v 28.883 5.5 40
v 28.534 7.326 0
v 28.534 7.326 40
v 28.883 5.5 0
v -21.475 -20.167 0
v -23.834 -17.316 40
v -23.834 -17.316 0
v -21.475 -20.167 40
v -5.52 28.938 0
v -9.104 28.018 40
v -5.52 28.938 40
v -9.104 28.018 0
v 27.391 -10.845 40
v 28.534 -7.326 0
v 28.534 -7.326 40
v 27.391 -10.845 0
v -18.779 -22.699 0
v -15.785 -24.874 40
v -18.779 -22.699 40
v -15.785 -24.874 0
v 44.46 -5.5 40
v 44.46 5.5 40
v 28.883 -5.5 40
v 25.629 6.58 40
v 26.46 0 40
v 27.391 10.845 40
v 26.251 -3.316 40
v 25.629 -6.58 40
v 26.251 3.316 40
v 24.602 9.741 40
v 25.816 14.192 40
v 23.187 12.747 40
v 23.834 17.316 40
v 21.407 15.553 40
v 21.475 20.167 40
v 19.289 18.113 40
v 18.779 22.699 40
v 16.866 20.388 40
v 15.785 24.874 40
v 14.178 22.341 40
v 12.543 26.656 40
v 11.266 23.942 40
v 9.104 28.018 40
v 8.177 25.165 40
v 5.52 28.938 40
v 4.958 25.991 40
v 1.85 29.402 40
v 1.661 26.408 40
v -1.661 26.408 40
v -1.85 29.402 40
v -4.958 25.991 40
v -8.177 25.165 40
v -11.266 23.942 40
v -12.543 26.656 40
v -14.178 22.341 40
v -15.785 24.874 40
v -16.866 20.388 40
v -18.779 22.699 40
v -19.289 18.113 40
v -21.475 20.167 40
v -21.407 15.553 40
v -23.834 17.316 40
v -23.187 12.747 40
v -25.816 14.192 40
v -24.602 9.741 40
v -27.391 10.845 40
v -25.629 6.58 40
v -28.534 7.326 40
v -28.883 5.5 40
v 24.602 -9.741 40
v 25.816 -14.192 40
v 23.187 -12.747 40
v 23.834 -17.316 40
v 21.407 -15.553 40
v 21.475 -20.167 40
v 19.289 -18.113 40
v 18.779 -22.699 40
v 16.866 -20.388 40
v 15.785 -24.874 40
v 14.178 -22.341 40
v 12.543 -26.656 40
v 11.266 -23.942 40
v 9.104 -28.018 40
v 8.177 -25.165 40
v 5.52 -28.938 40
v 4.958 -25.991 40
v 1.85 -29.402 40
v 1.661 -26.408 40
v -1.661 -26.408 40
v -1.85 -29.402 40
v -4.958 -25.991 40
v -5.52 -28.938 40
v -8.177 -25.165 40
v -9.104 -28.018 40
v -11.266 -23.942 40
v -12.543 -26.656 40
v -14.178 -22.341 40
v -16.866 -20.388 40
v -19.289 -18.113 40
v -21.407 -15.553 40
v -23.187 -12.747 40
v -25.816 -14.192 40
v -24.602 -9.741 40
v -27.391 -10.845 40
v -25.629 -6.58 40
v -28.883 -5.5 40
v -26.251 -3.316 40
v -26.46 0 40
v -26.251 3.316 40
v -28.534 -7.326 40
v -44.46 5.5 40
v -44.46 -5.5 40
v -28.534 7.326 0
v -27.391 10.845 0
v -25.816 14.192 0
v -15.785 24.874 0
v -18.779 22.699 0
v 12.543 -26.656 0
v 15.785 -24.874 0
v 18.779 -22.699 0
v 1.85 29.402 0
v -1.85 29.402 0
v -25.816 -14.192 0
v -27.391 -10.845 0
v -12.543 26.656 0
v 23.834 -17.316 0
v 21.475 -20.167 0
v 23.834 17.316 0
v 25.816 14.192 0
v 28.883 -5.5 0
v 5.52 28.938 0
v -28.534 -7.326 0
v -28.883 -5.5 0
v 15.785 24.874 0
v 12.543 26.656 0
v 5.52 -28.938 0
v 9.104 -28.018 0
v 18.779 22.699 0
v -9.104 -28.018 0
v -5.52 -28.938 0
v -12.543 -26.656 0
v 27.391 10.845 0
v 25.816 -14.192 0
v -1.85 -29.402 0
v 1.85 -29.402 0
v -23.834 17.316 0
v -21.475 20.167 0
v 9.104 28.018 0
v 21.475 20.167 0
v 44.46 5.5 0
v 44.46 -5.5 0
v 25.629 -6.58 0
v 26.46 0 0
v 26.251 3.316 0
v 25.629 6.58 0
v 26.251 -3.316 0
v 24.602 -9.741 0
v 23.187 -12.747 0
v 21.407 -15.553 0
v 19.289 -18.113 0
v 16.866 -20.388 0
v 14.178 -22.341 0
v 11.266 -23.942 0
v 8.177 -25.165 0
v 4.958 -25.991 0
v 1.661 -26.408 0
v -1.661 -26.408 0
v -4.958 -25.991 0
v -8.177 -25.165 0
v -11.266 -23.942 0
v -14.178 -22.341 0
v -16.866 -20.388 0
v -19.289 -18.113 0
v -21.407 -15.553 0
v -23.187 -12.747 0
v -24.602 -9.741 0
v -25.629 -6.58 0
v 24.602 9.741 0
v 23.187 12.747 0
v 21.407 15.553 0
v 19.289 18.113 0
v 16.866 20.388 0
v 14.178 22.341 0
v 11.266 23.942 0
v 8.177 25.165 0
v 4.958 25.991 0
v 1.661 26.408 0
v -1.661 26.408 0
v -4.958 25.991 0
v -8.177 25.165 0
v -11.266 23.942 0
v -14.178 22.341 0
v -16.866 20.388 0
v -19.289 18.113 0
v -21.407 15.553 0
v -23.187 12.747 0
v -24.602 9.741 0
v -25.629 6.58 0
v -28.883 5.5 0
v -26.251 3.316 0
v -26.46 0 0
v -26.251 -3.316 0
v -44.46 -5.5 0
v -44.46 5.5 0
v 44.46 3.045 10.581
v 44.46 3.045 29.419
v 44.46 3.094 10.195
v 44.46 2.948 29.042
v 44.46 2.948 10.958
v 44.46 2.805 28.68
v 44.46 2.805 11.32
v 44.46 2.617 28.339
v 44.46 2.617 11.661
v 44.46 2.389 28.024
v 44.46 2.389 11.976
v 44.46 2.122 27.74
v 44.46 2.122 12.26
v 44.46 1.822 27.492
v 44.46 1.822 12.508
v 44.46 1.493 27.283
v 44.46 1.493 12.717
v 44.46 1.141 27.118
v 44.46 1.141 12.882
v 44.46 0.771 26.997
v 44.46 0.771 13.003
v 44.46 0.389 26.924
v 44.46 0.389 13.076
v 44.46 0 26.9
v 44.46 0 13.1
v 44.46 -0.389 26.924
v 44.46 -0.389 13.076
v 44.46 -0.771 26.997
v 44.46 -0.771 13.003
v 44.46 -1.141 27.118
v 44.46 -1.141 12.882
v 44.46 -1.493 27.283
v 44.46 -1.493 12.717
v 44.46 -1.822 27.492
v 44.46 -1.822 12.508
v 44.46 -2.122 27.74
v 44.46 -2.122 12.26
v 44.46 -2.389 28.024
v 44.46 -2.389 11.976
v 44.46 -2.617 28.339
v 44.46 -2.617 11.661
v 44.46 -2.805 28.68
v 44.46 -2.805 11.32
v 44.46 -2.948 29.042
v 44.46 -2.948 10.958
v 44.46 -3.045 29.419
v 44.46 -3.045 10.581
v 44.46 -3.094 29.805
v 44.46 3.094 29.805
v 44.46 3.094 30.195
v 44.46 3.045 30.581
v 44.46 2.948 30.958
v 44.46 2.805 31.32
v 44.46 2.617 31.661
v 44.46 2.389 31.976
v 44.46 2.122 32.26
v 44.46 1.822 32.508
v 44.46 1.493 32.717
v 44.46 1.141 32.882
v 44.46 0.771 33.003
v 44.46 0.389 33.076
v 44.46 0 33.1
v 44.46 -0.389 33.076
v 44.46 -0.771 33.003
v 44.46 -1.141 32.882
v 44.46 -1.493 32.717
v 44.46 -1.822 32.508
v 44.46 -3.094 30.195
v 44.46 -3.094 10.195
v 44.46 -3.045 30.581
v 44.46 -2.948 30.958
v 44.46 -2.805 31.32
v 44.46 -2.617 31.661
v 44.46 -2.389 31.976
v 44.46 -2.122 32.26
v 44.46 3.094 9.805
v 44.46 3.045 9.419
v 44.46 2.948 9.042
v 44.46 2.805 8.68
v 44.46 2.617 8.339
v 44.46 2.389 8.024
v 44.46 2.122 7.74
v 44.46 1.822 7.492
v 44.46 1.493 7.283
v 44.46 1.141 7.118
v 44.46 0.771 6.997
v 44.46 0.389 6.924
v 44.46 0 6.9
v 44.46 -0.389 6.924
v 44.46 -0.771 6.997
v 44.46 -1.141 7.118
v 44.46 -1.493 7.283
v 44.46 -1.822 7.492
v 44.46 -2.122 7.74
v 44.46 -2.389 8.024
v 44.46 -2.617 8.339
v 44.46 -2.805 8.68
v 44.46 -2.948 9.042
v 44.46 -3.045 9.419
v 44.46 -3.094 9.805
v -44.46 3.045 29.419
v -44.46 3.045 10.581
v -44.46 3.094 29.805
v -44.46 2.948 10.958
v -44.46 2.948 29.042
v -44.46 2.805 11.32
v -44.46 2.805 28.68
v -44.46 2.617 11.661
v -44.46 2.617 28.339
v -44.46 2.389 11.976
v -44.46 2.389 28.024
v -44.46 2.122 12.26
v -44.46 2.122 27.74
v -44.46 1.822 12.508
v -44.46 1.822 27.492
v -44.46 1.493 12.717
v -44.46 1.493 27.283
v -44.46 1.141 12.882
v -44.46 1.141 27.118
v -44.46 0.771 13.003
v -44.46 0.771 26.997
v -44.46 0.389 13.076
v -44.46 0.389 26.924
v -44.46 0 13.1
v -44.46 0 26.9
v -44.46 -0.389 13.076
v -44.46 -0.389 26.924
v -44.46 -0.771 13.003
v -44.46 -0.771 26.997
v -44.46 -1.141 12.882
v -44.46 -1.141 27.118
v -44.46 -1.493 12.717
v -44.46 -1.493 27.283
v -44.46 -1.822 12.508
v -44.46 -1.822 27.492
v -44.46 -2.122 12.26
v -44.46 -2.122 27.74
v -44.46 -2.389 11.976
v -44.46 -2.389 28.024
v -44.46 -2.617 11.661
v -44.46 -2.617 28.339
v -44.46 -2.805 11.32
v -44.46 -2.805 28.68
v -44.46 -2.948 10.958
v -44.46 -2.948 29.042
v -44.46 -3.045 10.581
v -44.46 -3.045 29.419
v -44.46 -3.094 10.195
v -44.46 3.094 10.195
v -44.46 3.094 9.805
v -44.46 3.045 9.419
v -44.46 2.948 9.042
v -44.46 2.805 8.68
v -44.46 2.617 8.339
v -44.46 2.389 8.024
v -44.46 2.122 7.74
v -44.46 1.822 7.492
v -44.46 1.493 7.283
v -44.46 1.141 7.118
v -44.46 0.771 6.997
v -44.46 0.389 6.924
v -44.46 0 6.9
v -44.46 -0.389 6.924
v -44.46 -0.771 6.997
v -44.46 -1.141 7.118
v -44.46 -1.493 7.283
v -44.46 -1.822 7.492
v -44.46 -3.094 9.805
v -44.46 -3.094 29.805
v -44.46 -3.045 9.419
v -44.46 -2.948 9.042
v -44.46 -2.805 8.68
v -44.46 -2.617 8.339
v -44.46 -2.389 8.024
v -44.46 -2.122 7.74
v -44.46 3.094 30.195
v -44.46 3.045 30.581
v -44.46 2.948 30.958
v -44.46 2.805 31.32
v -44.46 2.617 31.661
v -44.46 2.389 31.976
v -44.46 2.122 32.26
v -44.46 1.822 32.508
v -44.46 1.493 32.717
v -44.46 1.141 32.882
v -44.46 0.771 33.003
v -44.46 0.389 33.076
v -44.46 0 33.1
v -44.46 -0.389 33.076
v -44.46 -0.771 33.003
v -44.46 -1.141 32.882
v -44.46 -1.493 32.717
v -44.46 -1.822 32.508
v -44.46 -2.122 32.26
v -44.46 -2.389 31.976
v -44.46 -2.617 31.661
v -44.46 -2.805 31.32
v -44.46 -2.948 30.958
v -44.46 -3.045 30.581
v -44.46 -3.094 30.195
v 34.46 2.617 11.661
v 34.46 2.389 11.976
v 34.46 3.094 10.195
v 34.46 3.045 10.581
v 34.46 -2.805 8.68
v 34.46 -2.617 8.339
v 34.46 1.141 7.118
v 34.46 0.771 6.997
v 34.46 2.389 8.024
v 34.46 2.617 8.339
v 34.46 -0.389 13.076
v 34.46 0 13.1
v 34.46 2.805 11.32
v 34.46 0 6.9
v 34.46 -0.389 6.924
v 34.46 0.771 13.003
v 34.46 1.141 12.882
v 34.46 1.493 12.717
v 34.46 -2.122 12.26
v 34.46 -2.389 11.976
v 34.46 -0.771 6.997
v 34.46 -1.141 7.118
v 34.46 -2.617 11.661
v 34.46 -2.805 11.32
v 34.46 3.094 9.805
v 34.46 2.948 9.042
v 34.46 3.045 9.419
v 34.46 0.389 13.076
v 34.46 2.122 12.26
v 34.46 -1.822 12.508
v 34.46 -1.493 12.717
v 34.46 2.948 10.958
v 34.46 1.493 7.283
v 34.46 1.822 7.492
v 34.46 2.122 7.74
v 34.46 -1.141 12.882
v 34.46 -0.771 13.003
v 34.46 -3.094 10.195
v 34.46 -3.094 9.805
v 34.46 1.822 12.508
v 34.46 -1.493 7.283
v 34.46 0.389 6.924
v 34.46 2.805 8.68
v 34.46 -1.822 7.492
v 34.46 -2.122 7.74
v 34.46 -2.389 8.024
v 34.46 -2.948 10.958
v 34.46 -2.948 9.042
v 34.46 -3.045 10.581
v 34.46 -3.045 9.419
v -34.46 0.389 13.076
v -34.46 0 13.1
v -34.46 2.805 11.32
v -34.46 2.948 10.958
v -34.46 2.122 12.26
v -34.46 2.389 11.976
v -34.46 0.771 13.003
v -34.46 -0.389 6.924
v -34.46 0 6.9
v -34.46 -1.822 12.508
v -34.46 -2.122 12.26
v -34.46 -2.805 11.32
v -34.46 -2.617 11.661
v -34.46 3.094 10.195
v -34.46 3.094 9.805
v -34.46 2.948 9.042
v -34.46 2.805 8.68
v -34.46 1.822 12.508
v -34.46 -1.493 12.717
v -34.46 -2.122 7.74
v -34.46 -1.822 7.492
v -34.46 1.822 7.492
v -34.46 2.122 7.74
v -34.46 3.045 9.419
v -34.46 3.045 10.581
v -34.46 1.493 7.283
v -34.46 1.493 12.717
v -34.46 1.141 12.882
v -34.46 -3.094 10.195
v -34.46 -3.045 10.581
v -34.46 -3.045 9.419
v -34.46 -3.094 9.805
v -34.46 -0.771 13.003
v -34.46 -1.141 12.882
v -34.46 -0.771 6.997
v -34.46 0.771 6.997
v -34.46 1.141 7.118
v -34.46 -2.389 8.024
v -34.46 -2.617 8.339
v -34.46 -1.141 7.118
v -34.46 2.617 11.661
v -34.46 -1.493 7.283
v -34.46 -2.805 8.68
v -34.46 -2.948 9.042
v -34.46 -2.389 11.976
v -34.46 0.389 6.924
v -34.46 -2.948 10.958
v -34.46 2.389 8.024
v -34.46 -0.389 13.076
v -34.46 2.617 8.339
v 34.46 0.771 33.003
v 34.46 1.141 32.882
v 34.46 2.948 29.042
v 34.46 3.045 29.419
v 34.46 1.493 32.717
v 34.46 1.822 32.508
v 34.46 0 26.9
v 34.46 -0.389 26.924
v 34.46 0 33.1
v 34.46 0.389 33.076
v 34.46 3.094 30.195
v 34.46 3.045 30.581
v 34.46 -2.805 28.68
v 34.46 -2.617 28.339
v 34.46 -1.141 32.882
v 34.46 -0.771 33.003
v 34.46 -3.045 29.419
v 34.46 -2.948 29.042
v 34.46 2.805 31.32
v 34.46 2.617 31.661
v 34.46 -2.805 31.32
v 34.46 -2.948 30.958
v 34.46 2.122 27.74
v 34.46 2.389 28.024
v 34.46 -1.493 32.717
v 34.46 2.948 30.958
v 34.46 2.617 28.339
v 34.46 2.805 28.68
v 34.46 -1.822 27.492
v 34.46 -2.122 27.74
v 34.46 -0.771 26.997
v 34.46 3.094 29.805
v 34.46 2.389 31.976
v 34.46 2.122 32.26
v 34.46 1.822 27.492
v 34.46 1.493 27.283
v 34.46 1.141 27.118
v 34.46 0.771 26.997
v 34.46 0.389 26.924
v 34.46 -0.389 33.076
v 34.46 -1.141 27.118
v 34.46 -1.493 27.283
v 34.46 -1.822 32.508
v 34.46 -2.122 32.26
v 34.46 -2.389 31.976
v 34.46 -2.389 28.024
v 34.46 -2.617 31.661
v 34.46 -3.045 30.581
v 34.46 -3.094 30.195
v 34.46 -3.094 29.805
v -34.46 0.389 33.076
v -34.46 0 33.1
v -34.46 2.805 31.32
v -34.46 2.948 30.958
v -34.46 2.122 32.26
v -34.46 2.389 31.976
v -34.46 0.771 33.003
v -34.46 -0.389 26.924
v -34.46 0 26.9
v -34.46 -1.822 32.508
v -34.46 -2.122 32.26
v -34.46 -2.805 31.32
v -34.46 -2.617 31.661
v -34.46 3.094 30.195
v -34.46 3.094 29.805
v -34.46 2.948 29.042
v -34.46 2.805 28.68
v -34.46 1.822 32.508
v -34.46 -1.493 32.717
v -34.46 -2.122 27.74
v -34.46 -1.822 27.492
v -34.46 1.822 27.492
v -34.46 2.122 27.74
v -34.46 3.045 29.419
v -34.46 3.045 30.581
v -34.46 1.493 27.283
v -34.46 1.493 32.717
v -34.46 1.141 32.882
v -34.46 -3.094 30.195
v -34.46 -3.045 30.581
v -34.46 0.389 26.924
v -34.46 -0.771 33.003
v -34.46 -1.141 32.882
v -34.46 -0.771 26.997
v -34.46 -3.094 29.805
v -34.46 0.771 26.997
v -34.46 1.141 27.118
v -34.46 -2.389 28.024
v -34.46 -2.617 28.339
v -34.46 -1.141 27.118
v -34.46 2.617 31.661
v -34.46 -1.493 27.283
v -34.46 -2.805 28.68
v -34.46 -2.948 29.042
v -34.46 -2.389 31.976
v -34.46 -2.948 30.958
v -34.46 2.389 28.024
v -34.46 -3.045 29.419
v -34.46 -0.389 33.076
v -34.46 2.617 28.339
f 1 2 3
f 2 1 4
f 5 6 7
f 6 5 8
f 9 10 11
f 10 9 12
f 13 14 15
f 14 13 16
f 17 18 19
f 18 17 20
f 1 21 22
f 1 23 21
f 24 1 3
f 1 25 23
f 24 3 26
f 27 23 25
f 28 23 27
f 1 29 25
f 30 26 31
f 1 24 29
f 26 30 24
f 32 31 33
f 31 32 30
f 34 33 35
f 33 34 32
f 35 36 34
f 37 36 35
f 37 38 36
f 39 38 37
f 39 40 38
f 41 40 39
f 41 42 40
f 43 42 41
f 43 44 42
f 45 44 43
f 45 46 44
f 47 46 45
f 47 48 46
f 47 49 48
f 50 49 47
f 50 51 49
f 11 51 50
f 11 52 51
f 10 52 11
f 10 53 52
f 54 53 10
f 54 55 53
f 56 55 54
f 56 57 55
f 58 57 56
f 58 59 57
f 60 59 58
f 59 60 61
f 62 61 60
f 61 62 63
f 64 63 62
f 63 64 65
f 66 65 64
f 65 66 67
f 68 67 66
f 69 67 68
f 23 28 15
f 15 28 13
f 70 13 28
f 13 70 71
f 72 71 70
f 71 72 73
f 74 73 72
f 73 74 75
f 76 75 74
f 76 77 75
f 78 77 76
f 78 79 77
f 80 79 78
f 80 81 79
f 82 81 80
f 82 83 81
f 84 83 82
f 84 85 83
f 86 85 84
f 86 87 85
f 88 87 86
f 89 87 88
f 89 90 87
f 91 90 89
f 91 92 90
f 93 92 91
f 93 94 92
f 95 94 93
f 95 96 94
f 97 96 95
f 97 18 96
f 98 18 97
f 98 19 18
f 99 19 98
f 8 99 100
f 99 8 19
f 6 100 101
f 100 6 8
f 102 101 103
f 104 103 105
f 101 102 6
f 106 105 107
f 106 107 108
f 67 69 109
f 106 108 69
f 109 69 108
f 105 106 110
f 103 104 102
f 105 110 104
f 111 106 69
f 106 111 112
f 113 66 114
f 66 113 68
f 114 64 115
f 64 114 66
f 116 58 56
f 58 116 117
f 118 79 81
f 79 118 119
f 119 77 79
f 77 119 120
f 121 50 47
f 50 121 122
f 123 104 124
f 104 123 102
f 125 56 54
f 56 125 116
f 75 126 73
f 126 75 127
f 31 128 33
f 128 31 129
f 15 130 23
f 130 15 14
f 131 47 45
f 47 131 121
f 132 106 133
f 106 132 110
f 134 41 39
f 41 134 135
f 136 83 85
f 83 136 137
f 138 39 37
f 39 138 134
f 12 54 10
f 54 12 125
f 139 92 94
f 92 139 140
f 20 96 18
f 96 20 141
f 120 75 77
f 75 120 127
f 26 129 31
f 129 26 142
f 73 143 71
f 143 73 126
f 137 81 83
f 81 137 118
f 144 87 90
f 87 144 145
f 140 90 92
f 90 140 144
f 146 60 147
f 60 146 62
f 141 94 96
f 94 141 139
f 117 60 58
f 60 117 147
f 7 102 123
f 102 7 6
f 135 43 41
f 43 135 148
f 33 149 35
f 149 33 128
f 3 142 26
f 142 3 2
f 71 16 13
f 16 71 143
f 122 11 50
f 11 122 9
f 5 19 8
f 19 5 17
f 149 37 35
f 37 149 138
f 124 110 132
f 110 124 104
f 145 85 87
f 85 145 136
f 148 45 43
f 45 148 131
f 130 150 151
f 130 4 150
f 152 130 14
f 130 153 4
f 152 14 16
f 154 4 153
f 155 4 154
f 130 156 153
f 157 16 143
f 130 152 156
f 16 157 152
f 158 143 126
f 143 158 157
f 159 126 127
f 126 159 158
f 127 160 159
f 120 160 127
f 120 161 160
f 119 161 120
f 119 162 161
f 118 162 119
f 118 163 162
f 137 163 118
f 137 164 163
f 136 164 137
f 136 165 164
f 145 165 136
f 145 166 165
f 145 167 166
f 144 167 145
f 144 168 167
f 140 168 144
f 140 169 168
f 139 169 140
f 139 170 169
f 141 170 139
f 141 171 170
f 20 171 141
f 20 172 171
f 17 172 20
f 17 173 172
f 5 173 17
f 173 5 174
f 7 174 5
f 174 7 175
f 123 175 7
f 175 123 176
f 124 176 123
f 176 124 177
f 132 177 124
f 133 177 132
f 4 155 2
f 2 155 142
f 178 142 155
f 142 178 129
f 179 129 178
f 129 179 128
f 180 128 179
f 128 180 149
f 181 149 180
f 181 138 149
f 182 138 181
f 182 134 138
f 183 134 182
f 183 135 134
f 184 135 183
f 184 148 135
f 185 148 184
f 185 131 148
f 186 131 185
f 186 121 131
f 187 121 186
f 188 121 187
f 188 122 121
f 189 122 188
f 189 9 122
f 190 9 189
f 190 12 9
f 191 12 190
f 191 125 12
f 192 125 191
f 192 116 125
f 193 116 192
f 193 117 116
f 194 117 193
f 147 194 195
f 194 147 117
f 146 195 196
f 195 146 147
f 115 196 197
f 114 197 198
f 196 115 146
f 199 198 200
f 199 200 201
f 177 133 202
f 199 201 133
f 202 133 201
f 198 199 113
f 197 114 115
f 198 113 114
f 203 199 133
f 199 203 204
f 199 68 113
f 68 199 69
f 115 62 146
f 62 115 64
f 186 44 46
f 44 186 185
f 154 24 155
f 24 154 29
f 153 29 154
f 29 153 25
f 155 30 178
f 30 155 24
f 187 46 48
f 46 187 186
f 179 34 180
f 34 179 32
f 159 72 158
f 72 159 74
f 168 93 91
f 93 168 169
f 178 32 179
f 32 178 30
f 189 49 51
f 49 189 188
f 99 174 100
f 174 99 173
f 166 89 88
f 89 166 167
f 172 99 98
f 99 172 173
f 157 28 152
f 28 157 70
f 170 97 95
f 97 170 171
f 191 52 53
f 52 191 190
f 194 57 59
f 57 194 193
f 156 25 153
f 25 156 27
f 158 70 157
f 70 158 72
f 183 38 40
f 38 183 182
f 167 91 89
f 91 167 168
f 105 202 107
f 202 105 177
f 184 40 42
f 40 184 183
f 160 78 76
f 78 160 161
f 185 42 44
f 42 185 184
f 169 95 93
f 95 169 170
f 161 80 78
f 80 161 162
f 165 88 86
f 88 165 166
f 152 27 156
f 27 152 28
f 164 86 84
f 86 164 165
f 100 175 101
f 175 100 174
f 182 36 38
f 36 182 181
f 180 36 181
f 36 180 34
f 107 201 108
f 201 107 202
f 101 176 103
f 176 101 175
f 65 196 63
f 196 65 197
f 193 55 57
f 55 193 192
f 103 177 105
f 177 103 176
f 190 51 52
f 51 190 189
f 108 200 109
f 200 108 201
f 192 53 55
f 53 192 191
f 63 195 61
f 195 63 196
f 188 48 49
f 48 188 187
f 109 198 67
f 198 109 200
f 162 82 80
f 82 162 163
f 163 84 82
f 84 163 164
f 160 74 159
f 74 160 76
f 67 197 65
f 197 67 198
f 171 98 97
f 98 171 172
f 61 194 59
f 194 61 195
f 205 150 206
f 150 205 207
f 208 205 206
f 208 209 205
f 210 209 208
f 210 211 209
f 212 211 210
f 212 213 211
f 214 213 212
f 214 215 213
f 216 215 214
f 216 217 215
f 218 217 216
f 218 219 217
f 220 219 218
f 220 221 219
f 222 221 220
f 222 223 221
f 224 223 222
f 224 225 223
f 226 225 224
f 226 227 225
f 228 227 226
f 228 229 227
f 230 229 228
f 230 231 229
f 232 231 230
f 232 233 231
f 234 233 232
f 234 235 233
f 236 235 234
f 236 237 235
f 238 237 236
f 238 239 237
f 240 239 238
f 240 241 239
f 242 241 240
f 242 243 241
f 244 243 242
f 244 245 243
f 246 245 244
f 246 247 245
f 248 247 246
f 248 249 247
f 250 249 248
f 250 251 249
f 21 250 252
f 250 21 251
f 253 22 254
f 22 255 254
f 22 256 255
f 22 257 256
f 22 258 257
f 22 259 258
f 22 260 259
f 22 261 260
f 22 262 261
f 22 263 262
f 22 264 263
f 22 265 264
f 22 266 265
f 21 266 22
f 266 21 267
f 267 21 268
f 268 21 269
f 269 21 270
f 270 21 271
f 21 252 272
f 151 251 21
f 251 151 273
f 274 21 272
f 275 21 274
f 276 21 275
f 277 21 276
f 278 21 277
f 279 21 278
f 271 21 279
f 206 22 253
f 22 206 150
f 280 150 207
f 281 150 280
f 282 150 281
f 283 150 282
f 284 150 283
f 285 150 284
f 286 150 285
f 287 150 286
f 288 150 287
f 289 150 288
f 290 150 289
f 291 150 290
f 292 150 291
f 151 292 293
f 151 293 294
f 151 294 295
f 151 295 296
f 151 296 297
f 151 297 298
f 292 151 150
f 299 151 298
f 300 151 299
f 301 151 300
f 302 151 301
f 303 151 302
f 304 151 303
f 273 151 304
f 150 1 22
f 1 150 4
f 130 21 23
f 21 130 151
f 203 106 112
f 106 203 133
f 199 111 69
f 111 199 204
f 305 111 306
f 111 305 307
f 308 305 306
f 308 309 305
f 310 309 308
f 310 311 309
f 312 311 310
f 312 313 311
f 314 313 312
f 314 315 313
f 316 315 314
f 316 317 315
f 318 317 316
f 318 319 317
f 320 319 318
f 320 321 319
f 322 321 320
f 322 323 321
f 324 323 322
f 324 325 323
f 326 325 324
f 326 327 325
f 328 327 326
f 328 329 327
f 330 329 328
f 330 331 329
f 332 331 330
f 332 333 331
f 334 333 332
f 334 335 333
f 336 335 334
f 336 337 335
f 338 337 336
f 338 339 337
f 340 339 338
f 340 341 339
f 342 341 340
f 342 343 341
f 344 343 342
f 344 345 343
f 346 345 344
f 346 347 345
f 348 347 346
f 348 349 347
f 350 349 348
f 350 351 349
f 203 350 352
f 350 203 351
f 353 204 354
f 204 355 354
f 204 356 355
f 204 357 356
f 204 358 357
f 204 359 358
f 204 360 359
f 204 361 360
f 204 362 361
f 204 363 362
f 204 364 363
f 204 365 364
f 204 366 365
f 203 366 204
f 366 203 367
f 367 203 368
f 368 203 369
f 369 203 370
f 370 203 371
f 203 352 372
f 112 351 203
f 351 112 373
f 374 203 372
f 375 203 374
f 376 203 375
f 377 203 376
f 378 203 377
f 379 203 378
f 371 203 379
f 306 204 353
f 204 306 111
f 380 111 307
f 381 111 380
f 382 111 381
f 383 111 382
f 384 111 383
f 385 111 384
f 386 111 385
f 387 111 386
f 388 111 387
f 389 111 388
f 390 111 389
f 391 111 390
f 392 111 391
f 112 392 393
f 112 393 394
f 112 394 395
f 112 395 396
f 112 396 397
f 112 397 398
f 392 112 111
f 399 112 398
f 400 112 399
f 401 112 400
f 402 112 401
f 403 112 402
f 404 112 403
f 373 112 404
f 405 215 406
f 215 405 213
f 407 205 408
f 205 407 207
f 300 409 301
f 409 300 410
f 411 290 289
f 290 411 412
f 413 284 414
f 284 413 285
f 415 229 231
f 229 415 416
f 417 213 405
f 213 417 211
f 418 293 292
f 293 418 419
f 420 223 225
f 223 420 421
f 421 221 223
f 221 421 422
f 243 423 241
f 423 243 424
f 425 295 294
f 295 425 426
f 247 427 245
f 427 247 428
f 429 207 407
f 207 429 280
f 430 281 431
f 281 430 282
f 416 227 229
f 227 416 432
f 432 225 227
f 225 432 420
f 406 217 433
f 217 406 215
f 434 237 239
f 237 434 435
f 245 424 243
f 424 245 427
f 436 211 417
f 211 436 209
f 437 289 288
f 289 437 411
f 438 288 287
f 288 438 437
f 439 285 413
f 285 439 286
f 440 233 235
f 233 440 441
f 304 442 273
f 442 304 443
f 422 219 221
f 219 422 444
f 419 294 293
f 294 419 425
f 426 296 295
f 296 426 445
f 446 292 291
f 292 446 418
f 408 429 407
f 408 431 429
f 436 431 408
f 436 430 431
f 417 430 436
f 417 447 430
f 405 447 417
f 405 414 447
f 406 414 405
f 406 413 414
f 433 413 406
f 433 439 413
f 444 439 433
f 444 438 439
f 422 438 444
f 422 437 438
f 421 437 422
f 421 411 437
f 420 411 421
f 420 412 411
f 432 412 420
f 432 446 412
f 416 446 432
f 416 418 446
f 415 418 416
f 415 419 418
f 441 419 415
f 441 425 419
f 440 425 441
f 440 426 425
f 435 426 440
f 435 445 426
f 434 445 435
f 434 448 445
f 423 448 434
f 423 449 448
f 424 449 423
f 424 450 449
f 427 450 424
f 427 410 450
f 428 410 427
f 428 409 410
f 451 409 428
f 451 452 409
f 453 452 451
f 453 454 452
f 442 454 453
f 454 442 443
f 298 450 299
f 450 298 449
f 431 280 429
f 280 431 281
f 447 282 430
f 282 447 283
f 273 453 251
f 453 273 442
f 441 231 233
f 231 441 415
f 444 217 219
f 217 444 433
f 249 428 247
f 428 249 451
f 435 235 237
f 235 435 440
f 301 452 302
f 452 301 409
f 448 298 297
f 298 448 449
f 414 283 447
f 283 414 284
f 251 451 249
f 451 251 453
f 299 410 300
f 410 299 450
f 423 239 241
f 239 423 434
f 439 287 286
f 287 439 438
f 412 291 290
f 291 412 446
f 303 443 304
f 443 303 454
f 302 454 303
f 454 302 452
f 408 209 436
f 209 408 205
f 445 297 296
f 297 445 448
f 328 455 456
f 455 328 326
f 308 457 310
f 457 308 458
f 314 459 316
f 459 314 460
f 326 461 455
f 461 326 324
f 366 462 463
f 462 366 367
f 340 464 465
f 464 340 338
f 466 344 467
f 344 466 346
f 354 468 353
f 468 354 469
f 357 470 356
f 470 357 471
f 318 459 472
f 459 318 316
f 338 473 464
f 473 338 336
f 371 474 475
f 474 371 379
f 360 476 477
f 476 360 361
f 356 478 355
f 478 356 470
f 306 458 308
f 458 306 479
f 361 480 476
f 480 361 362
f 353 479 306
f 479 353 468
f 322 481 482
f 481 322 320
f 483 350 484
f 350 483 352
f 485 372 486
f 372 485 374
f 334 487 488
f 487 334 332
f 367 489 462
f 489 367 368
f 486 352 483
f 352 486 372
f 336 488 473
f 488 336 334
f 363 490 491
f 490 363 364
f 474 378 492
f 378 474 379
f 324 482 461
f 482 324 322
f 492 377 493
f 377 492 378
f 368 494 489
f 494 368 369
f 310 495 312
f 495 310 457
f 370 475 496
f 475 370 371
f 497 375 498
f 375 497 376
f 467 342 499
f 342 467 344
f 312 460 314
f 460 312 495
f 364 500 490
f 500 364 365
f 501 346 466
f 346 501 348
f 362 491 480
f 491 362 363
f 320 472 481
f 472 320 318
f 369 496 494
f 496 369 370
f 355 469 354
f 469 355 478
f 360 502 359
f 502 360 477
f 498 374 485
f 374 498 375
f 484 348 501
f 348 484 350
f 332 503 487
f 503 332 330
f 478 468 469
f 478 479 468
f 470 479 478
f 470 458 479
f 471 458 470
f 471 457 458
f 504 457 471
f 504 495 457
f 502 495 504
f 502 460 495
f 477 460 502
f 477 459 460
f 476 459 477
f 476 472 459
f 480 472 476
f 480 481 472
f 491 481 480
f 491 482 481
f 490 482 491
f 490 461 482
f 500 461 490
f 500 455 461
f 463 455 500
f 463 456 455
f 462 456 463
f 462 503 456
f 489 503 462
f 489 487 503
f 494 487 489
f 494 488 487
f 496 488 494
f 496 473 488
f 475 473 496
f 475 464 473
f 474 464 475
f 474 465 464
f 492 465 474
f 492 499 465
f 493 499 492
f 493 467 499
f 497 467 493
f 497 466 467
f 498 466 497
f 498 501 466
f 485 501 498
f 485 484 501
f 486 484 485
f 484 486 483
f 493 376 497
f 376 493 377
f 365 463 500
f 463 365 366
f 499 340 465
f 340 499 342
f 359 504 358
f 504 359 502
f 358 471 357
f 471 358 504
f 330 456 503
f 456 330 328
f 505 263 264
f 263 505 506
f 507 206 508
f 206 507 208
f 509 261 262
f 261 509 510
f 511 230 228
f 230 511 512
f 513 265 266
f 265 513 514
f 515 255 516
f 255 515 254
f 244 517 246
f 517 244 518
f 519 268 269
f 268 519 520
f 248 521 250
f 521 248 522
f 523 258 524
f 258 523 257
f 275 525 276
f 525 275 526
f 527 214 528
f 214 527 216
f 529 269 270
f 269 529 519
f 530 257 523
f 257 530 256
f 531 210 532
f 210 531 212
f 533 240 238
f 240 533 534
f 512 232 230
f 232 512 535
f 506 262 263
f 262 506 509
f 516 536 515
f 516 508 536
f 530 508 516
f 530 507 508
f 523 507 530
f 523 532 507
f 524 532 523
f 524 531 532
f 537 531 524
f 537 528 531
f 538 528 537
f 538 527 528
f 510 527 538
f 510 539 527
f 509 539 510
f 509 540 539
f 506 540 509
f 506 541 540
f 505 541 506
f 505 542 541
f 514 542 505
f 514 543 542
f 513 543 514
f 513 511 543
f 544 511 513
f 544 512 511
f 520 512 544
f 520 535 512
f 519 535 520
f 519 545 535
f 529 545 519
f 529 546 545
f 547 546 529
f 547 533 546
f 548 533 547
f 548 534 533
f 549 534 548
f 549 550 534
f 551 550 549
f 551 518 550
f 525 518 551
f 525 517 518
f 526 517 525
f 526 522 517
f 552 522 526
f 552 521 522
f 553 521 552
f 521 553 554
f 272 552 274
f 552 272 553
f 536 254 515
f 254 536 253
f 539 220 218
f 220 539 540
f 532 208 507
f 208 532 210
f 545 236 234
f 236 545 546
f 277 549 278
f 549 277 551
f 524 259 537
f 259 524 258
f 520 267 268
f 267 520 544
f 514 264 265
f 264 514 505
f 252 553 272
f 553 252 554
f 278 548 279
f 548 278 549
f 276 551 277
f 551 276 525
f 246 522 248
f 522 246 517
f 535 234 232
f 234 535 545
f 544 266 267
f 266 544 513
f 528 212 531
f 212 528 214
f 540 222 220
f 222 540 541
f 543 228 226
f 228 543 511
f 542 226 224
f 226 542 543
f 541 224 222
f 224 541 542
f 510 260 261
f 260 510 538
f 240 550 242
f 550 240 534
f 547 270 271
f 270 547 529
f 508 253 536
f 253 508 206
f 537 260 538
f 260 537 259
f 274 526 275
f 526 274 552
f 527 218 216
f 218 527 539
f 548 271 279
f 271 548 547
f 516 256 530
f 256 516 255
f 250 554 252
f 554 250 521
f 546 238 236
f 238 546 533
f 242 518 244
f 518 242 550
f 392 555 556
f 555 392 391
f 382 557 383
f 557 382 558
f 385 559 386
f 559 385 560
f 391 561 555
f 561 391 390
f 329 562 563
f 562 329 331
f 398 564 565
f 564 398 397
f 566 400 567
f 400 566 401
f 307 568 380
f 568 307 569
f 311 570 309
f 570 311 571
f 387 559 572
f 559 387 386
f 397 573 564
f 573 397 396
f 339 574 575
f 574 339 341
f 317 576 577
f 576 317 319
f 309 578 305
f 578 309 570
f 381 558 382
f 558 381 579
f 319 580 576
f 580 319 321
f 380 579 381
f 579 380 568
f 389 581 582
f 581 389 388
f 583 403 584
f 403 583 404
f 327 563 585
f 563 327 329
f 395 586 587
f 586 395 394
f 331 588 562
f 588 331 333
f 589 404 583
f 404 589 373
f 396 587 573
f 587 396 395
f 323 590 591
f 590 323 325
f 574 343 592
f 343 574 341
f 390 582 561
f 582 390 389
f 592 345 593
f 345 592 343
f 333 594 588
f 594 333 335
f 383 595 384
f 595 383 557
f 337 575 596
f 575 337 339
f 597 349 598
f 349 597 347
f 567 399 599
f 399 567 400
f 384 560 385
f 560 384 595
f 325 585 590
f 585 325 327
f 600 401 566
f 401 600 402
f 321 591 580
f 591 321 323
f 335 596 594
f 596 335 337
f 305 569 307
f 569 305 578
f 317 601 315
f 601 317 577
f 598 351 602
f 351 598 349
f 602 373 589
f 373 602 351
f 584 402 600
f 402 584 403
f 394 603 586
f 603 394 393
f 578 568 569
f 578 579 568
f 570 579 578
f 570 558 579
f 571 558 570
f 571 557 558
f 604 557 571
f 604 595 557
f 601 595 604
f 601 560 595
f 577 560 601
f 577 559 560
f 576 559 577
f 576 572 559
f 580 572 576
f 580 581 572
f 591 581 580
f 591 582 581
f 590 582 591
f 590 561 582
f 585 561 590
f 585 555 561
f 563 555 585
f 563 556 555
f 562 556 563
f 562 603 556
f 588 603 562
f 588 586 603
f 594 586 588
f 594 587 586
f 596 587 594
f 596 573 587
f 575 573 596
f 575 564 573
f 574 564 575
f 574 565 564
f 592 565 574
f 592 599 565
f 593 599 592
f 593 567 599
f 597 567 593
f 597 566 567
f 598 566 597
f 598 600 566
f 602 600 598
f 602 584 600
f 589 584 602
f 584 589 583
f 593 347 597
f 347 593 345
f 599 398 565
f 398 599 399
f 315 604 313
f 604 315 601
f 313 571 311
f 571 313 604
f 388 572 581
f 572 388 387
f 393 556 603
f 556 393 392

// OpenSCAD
tube_diameter           = 52.92;
wall_thickness          = 3;
overlap_margin          = 1;
adapter_length          = 40;
wing_tab_thickness      = 11;
wing_tab_le_radius      = wing_tab_thickness / 2;
adapter_depth           = wall_thickness;
wing_tab_span           = 15;
hole_diameter           = 6.2;
hole_spacing            = 20;

module wing_adapter() {
    tube_radius = tube_diameter / 2;
    sleeve_outer_radius = tube_radius + adapter_depth;
    tab_start_x = sleeve_outer_radius - overlap_margin;
    hole_radius = hole_diameter / 2;
    
    // The X coordinate of the very tip of the tab
    tab_tip_x = sleeve_outer_radius + wing_tab_span;
    
    // Vertical positions
    z_center = adapter_length / 2;
    z_offset = hole_spacing / 2;
    
    difference() {
        // 1. SOLID BODY
        union() {
            // Main Sleeve
            difference() {
                cylinder(h = adapter_length, r = sleeve_outer_radius, $fn=50);
                translate([0, 0, -0.1])
                cylinder(h = adapter_length + 0.2, r = tube_radius, $fn=50);
            }

            // Right Tab
            translate([tab_start_x, -wing_tab_le_radius, 0])
            cube([wing_tab_span + overlap_margin, wing_tab_thickness, adapter_length]);
            
            // Left Tab
            mirror([1, 0, 0])
            translate([tab_start_x, -wing_tab_le_radius, 0])
            cube([wing_tab_span + overlap_margin, wing_tab_thickness, adapter_length]);
        }

        // 2. HOLES (Rod Sockets)
        for (z_pos = [z_center - z_offset, z_center + z_offset]) {
            
            // Right Side Holes
            // We translate to the tip, then rotate to point Inwards (-X)
            translate([tab_tip_x + 0.1, 0, z_pos]) // +0.1 ensures clean surface cut
            rotate([0, -90, 0])
            cylinder(h = 10.1, r = hole_radius, $fn=50);

            // Left Side Holes
            mirror([1, 0, 0])
            translate([tab_tip_x + 0.1, 0, z_pos])
            rotate([0, -90, 0])
            cylinder(h = 10.1, r = hole_radius, $fn=50);
        }
    }
}

$fn=100;
wing_adapter();
